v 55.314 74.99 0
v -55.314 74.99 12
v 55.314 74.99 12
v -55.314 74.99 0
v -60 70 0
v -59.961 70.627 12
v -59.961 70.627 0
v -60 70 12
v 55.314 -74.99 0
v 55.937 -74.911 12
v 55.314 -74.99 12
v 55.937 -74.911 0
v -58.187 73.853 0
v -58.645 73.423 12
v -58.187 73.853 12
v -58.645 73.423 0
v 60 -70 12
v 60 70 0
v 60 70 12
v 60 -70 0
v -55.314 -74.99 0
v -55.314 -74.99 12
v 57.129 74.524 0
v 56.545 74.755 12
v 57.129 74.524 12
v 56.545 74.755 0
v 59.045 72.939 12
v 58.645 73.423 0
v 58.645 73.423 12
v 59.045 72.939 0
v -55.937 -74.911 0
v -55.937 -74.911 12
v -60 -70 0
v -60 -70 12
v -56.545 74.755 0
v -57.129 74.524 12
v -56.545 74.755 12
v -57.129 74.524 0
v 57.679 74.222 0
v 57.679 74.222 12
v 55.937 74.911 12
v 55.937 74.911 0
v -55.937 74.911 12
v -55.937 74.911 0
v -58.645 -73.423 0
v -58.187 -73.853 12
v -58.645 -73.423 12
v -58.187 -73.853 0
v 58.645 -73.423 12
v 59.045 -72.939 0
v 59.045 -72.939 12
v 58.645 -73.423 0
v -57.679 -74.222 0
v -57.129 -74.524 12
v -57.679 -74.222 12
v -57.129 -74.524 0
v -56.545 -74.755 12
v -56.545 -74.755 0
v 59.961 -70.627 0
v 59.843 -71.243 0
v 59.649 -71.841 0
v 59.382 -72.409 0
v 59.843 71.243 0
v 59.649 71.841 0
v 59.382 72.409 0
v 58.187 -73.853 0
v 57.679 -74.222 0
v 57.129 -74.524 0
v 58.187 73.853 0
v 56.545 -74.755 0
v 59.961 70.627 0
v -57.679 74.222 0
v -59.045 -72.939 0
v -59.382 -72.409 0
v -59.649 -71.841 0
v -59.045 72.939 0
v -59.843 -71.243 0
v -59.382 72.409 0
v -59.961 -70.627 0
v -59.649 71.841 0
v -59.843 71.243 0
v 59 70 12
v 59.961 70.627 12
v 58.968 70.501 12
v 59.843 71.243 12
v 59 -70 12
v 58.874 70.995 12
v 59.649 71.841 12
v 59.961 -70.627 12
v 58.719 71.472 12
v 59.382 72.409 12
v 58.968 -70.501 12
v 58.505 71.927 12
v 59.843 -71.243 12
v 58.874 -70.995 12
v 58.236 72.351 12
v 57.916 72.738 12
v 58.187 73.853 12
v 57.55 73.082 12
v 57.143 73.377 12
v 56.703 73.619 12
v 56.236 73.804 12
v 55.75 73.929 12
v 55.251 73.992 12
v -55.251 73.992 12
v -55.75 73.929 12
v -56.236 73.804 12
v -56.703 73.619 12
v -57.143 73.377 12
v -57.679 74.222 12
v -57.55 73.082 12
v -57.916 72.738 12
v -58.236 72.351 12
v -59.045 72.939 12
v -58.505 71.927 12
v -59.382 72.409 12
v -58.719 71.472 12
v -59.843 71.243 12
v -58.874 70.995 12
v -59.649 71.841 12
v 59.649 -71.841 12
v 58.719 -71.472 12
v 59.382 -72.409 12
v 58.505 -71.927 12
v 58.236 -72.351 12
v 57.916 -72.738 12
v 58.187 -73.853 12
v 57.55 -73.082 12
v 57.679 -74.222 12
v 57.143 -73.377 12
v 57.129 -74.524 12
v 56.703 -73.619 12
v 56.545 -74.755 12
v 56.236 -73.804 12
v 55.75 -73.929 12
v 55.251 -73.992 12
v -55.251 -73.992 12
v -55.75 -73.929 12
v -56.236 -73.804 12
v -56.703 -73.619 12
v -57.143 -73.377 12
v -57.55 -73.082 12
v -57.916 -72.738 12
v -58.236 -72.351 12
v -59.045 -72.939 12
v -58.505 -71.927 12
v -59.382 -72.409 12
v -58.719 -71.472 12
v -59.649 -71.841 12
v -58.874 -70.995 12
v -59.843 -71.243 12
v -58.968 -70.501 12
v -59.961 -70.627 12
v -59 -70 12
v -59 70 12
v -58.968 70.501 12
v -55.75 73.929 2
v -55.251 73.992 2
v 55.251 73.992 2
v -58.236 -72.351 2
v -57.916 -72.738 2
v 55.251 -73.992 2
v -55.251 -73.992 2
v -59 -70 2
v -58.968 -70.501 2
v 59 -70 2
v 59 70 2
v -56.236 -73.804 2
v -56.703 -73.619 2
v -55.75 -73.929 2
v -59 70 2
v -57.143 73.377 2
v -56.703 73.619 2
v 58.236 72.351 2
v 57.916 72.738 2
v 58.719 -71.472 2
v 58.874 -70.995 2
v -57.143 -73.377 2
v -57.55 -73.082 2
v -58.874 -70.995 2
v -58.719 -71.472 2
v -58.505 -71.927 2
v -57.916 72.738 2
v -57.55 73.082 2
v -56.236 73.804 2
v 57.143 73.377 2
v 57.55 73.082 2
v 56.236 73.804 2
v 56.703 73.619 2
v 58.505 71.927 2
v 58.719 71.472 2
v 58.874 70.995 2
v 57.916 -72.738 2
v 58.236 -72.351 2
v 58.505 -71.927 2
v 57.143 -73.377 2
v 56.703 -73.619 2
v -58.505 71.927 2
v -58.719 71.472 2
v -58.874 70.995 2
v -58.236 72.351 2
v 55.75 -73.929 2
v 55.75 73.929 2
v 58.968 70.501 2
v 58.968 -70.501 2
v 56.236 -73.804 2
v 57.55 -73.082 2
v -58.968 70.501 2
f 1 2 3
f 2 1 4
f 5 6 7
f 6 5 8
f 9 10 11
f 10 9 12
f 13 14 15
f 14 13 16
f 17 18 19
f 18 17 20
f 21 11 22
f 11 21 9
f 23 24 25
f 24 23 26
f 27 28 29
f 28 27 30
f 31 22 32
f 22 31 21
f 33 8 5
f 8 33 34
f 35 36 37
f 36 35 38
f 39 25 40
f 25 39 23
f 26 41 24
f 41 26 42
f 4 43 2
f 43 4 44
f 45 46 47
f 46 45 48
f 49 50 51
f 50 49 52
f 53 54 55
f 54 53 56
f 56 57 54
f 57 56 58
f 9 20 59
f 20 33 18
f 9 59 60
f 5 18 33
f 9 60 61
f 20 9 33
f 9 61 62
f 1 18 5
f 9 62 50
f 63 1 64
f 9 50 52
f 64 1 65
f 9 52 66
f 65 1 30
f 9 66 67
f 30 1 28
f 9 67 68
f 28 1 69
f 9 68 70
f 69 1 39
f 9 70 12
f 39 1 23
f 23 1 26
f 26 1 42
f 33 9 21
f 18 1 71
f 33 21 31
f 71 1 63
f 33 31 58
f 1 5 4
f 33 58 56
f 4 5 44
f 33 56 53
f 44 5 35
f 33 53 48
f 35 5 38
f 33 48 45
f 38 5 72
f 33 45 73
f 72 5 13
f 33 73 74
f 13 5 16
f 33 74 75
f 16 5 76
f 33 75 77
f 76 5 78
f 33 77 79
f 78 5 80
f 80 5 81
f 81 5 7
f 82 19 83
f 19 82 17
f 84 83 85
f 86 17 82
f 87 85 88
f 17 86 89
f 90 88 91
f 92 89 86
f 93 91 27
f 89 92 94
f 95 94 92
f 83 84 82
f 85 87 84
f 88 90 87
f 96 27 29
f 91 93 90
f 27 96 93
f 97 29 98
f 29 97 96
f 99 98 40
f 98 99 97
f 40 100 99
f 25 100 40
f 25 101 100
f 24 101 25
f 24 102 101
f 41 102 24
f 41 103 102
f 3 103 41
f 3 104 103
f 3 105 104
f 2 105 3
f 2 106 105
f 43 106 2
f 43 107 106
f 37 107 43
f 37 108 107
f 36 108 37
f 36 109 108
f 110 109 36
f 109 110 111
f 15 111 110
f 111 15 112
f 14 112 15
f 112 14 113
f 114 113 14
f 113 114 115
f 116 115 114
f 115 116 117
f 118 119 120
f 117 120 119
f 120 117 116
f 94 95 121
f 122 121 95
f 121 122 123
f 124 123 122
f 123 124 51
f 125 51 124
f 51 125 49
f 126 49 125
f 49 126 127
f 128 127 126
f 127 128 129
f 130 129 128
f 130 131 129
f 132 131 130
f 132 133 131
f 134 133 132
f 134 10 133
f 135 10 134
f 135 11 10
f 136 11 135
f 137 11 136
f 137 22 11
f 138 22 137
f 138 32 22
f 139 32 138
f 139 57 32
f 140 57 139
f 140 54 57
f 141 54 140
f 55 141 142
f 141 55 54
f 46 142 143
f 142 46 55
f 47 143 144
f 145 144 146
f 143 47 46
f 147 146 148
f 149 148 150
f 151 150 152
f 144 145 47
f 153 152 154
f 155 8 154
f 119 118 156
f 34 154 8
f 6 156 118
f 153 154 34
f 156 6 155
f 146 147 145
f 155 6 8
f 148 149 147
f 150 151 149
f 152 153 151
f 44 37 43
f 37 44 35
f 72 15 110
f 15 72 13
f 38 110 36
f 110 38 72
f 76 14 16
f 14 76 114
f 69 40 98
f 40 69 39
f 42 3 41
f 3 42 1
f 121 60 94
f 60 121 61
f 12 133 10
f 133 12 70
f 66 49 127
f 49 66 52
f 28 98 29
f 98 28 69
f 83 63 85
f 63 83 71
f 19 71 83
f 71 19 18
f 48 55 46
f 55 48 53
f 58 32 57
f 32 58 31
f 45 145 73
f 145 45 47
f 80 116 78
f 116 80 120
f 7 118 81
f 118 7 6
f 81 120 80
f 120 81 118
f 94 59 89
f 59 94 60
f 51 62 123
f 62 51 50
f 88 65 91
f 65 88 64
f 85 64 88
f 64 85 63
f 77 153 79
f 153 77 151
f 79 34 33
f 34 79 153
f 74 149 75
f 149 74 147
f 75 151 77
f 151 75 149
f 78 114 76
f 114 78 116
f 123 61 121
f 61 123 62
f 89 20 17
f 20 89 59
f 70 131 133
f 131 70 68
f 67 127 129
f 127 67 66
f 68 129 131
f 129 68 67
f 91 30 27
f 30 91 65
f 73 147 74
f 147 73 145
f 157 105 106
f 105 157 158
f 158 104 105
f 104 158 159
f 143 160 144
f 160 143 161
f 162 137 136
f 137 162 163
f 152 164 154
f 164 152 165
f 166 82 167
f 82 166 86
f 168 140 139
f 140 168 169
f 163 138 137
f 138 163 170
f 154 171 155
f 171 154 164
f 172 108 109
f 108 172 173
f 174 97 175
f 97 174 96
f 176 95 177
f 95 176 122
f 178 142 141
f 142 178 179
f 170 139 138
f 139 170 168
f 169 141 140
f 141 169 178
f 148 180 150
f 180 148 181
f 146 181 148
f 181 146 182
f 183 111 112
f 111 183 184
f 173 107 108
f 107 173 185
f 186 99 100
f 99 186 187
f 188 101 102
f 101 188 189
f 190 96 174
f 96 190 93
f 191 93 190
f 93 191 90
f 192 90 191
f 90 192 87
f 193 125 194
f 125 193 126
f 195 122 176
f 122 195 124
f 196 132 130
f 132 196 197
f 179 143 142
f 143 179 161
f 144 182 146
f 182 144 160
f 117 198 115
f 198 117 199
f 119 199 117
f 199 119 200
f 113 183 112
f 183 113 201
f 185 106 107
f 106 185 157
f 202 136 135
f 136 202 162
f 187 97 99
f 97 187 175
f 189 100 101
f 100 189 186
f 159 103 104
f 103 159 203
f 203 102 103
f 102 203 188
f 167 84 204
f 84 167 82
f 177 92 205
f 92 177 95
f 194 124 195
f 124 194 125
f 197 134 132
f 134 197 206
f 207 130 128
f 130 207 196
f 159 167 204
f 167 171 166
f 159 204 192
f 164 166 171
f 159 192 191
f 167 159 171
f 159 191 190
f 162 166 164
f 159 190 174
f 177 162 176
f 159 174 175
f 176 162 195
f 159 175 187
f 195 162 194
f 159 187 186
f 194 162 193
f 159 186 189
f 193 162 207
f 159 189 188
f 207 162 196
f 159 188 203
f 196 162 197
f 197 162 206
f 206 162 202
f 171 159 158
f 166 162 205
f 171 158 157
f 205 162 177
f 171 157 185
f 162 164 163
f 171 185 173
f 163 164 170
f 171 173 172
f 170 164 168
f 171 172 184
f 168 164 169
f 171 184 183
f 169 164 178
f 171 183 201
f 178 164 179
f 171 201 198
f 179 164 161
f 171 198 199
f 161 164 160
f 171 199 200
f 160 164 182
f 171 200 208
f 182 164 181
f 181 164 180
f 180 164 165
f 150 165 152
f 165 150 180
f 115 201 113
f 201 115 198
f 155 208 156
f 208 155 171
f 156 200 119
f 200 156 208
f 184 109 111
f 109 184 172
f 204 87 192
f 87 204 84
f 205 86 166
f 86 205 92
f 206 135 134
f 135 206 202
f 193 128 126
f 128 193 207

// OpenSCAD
$fn = 50;


difference() {
	union() {
		hull() {
			translate(v = [-55.0000000000, 70.0000000000, 0]) {
				cylinder(h = 12, r = 5);
			}
			translate(v = [55.0000000000, 70.0000000000, 0]) {
				cylinder(h = 12, r = 5);
			}
			translate(v = [-55.0000000000, -70.0000000000, 0]) {
				cylinder(h = 12, r = 5);
			}
			translate(v = [55.0000000000, -70.0000000000, 0]) {
				cylinder(h = 12, r = 5);
			}
		}
	}
	union() {
		translate(v = [0, 0, 2]) {
			hull() {
				translate(v = [-55.0000000000, 70.0000000000, 0]) {
					cylinder(h = 10, r = 4);
				}
				translate(v = [55.0000000000, 70.0000000000, 0]) {
					cylinder(h = 10, r = 4);
				}
				translate(v = [-55.0000000000, -70.0000000000, 0]) {
					cylinder(h = 10, r = 4);
				}
				translate(v = [55.0000000000, -70.0000000000, 0]) {
					cylinder(h = 10, r = 4);
				}
			}
		}
	}
}
